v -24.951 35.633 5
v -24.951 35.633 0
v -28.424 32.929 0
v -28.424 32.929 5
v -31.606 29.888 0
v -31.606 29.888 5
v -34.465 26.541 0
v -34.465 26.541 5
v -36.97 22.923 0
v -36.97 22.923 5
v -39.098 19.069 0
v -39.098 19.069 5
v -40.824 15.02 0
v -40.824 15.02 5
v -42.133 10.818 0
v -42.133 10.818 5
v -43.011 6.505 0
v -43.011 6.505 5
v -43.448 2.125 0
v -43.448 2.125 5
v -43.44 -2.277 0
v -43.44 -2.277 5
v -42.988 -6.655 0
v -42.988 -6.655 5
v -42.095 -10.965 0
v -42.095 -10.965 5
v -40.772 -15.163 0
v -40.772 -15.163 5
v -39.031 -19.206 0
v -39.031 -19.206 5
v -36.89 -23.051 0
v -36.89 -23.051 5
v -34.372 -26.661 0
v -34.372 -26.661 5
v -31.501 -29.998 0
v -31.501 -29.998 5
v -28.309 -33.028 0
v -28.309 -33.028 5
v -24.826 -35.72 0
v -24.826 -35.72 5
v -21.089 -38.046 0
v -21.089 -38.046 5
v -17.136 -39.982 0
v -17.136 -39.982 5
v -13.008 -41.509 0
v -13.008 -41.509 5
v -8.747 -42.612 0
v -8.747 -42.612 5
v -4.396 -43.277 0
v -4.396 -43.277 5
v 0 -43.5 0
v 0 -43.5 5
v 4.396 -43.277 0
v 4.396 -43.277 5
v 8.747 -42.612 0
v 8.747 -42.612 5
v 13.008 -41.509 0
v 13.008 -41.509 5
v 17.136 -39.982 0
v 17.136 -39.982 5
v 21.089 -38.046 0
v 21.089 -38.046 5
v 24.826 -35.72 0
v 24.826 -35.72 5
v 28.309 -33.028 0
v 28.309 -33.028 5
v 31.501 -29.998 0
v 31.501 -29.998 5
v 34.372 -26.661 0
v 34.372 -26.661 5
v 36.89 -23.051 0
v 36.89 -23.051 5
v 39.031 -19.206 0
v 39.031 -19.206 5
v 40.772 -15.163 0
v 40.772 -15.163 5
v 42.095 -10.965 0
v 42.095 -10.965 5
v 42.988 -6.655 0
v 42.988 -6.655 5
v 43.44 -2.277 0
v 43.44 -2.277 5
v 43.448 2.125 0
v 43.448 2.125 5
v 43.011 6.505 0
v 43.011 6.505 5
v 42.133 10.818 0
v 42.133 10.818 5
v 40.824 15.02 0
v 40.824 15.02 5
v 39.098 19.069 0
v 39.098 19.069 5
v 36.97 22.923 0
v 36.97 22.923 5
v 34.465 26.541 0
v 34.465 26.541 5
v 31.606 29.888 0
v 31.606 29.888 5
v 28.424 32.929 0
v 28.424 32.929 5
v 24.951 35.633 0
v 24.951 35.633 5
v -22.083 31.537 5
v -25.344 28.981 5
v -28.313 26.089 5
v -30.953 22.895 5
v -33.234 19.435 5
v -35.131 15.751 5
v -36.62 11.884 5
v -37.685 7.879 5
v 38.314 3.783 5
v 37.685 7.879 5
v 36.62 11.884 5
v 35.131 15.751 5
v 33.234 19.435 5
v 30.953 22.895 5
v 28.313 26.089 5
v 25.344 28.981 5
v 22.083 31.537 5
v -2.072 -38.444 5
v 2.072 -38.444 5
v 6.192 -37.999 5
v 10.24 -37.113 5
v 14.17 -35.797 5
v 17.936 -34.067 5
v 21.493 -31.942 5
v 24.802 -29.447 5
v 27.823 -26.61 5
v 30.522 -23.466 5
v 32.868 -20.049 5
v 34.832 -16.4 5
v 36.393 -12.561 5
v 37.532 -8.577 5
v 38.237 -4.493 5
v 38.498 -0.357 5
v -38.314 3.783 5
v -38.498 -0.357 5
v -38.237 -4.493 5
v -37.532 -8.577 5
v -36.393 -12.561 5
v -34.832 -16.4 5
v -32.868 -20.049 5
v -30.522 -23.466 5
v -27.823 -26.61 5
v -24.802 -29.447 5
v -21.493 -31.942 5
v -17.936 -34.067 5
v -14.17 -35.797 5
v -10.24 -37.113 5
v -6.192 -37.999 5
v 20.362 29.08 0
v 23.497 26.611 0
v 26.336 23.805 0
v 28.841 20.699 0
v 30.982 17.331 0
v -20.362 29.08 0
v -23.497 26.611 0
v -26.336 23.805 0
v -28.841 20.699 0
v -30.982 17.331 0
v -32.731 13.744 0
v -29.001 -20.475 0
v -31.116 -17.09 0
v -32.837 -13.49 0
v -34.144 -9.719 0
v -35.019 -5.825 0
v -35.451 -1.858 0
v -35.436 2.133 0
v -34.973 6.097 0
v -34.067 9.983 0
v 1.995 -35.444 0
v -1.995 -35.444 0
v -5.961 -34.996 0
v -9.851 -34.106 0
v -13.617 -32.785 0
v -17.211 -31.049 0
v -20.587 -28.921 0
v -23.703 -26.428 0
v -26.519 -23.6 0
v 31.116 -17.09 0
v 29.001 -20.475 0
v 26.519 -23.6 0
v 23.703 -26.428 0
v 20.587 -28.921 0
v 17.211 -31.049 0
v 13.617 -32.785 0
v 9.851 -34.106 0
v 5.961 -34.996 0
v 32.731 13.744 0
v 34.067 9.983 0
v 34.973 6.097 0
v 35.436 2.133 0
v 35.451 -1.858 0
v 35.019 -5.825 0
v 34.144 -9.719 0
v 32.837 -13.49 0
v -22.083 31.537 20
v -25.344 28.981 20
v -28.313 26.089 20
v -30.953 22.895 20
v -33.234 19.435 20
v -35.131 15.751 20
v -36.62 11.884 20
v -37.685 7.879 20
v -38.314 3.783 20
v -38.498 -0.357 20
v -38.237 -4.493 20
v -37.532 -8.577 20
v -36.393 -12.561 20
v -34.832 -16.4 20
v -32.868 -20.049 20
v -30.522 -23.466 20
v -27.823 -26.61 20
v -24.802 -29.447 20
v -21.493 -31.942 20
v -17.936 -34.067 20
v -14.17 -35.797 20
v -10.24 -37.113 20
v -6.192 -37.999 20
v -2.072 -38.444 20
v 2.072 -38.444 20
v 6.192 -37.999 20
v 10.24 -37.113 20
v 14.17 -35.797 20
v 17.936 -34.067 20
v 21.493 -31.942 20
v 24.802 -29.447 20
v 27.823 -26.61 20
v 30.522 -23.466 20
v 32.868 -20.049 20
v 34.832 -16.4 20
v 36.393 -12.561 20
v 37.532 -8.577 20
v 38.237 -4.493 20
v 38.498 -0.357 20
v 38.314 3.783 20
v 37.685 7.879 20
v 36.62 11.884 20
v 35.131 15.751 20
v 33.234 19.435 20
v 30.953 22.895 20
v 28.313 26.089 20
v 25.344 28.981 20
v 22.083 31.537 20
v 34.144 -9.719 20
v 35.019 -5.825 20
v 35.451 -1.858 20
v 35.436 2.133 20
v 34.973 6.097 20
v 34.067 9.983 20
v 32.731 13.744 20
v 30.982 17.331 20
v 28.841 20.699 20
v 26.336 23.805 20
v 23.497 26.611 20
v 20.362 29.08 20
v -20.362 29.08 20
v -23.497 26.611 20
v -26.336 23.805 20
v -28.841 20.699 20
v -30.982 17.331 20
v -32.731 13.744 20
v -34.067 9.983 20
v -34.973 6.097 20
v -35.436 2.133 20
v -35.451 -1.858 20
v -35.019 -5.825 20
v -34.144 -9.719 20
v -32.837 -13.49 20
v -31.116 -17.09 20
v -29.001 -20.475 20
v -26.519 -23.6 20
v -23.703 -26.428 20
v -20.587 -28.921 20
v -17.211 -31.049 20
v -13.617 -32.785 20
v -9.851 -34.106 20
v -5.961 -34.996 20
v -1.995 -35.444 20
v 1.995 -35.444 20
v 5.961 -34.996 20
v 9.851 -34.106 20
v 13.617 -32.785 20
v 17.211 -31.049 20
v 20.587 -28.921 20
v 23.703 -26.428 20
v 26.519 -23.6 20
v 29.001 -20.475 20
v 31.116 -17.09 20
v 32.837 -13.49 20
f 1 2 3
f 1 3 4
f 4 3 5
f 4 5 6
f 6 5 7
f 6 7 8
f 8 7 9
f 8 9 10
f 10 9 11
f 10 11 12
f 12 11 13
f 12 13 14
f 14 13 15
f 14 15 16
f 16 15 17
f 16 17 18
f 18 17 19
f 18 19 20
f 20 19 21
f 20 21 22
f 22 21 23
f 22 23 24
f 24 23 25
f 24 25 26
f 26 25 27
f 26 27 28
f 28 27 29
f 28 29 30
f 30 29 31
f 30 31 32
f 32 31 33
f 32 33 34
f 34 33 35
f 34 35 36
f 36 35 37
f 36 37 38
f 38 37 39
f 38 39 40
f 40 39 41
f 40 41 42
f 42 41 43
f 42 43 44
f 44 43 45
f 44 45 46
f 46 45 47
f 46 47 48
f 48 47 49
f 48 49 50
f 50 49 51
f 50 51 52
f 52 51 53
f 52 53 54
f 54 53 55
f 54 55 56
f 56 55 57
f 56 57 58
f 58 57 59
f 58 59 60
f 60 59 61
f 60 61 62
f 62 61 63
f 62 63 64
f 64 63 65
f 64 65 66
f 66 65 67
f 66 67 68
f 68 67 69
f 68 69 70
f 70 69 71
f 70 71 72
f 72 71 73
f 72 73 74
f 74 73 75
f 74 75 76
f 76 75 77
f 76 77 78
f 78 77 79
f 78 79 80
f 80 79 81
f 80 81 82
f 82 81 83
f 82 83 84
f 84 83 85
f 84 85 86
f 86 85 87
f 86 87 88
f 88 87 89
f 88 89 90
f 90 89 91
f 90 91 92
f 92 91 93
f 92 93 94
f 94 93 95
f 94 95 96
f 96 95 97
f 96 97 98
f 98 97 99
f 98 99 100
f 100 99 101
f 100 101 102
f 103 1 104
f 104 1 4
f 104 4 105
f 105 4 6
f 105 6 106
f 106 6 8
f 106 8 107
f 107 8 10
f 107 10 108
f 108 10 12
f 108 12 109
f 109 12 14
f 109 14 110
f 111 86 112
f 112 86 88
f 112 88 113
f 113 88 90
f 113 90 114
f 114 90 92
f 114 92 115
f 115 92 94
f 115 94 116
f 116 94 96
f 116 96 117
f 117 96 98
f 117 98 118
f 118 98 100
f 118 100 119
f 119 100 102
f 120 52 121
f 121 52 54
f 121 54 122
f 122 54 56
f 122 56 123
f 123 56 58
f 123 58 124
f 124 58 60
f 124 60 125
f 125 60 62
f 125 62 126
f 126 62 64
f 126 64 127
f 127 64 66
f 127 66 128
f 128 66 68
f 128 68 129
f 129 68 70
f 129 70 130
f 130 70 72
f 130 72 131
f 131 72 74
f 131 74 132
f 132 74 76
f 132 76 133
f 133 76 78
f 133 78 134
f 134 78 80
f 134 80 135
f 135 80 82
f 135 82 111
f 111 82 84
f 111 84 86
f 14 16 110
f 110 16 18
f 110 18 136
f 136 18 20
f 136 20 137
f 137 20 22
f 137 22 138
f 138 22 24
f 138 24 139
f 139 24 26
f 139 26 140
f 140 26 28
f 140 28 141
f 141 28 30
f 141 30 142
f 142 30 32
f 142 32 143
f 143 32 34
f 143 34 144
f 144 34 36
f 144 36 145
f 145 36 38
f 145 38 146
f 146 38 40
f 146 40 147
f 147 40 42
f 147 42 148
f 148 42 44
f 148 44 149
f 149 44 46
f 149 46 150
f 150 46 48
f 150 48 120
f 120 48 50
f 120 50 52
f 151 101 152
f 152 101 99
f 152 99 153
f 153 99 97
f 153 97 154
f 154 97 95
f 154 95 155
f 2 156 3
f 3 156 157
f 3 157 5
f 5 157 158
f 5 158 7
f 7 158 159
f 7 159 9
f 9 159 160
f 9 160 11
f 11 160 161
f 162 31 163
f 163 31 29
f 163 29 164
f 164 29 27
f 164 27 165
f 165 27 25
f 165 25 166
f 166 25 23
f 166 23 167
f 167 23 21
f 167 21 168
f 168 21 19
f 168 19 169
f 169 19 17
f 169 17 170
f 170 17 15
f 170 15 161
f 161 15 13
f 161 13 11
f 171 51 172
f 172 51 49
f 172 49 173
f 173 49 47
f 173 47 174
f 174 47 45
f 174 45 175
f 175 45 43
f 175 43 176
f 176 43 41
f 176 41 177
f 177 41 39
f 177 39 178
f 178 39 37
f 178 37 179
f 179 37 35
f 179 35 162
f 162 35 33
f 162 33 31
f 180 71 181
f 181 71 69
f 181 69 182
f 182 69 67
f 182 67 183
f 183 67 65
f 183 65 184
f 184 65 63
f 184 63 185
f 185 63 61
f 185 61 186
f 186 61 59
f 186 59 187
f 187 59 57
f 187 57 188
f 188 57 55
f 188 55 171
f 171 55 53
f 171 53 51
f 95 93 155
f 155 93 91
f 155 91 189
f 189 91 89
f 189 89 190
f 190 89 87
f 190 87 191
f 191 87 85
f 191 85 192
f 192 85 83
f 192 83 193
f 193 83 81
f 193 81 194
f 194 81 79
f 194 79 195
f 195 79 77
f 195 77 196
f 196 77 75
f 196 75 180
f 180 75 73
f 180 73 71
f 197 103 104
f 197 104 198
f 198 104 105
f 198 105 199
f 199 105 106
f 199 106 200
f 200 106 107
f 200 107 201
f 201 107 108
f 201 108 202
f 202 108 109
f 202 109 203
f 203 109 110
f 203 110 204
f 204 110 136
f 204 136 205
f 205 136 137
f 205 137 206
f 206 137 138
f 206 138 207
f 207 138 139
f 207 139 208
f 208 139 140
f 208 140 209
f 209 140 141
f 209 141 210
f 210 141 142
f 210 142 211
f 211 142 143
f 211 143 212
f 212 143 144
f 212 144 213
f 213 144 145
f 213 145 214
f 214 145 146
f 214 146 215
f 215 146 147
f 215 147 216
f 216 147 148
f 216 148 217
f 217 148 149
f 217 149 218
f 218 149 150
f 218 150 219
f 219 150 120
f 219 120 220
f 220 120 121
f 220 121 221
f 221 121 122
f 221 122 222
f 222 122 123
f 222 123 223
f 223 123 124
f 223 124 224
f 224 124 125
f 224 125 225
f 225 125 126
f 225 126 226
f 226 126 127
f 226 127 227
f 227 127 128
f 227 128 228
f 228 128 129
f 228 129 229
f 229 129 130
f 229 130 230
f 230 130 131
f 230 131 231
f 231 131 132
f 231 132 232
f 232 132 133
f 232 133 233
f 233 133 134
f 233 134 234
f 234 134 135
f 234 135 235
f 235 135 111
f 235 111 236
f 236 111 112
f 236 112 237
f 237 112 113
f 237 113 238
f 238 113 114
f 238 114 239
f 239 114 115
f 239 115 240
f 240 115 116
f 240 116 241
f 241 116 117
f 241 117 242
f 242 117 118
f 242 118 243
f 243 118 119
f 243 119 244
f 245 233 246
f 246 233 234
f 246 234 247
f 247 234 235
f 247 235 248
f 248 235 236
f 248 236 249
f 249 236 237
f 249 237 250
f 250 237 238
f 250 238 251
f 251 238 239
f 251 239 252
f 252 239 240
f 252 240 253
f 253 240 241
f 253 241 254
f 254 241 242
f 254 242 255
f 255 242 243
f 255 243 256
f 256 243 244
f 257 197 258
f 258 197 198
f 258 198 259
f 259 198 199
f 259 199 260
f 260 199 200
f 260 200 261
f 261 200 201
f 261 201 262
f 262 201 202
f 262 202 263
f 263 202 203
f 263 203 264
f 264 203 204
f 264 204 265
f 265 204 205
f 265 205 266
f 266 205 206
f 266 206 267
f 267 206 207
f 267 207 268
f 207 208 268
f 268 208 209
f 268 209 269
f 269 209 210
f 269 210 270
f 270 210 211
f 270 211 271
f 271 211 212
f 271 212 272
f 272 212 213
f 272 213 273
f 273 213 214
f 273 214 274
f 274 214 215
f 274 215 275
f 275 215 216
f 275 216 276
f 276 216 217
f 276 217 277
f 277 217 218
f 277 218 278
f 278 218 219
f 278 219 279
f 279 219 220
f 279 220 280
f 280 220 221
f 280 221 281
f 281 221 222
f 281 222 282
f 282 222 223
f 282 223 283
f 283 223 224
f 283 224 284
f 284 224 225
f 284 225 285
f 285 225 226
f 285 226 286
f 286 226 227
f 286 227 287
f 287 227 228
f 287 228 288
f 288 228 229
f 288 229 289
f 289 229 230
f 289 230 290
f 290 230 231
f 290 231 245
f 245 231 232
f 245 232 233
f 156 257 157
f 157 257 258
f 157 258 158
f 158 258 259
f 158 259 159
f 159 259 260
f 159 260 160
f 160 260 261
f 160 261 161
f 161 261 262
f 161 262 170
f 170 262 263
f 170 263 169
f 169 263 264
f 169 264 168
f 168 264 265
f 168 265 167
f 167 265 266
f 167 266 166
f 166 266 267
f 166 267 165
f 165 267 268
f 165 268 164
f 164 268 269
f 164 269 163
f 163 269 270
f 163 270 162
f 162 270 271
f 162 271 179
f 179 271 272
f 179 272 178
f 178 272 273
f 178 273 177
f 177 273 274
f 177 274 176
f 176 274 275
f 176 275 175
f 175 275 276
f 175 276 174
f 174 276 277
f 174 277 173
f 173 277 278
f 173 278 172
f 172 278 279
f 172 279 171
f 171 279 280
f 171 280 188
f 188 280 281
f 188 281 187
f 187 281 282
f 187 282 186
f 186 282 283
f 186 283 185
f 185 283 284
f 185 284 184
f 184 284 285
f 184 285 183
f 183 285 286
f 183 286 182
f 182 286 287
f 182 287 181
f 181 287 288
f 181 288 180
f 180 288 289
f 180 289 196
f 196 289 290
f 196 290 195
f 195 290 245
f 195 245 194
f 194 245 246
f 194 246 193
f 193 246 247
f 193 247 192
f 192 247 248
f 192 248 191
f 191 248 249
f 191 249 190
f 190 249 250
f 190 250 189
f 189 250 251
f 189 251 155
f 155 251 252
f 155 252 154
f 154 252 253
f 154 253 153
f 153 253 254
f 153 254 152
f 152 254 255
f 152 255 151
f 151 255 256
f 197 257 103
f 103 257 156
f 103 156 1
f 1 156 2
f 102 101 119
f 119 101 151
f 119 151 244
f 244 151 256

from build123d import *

# Parameters (mm, degrees)
ESBO_O1_R                = 43.5
RESSALTO_EXTRUS_O1_DEPTH = 5
ESBO_O2_R                = 38.5
RESSALTO_EXTRUS_O2_DEPTH = 15
ESBO_O3_R                = 35.5
CORTE_EXTRUS_O1_DEPTH    = 21
CORTE_EXTRUS_O2_DEPTH    = 21


with BuildPart() as part:
    # Esboço1 → Ressalto-extrusão1 (new body)
    with BuildSketch(Plane.XY):
        Circle(ESBO_O1_R)
    extrude(amount=RESSALTO_EXTRUS_O1_DEPTH)

    # Esboço2 → Ressalto-extrusão2 (add)
    with BuildSketch(Plane.XY.offset(5)):
        Circle(ESBO_O2_R)
    extrude(amount=RESSALTO_EXTRUS_O2_DEPTH)

    # Esboço3 → Corte-extrusão1 (cut, through all)
    with BuildSketch(Plane.XY.offset(20)):
        Circle(ESBO_O3_R)
    extrude(amount=-CORTE_EXTRUS_O1_DEPTH, mode=Mode.SUBTRACT)

    # Esboço4 → Corte-extrusão2 (cut, through all)
    with BuildSketch(Plane(origin=(0, 0, 0), x_dir=(-1, 0, 0), z_dir=(0, 0, -1))):
        with BuildLine():
            Line((0, 0), (24.950574981, 35.633113927))
            ThreePointArc((24.950574981, 35.633113927), (0, 43.5), (-24.950574981, 35.633113927))
            Line((-24.950574981, 35.633113927), (0, 0))
        make_face()
    extrude(amount=-CORTE_EXTRUS_O2_DEPTH, mode=Mode.SUBTRACT)


solid = part.part
